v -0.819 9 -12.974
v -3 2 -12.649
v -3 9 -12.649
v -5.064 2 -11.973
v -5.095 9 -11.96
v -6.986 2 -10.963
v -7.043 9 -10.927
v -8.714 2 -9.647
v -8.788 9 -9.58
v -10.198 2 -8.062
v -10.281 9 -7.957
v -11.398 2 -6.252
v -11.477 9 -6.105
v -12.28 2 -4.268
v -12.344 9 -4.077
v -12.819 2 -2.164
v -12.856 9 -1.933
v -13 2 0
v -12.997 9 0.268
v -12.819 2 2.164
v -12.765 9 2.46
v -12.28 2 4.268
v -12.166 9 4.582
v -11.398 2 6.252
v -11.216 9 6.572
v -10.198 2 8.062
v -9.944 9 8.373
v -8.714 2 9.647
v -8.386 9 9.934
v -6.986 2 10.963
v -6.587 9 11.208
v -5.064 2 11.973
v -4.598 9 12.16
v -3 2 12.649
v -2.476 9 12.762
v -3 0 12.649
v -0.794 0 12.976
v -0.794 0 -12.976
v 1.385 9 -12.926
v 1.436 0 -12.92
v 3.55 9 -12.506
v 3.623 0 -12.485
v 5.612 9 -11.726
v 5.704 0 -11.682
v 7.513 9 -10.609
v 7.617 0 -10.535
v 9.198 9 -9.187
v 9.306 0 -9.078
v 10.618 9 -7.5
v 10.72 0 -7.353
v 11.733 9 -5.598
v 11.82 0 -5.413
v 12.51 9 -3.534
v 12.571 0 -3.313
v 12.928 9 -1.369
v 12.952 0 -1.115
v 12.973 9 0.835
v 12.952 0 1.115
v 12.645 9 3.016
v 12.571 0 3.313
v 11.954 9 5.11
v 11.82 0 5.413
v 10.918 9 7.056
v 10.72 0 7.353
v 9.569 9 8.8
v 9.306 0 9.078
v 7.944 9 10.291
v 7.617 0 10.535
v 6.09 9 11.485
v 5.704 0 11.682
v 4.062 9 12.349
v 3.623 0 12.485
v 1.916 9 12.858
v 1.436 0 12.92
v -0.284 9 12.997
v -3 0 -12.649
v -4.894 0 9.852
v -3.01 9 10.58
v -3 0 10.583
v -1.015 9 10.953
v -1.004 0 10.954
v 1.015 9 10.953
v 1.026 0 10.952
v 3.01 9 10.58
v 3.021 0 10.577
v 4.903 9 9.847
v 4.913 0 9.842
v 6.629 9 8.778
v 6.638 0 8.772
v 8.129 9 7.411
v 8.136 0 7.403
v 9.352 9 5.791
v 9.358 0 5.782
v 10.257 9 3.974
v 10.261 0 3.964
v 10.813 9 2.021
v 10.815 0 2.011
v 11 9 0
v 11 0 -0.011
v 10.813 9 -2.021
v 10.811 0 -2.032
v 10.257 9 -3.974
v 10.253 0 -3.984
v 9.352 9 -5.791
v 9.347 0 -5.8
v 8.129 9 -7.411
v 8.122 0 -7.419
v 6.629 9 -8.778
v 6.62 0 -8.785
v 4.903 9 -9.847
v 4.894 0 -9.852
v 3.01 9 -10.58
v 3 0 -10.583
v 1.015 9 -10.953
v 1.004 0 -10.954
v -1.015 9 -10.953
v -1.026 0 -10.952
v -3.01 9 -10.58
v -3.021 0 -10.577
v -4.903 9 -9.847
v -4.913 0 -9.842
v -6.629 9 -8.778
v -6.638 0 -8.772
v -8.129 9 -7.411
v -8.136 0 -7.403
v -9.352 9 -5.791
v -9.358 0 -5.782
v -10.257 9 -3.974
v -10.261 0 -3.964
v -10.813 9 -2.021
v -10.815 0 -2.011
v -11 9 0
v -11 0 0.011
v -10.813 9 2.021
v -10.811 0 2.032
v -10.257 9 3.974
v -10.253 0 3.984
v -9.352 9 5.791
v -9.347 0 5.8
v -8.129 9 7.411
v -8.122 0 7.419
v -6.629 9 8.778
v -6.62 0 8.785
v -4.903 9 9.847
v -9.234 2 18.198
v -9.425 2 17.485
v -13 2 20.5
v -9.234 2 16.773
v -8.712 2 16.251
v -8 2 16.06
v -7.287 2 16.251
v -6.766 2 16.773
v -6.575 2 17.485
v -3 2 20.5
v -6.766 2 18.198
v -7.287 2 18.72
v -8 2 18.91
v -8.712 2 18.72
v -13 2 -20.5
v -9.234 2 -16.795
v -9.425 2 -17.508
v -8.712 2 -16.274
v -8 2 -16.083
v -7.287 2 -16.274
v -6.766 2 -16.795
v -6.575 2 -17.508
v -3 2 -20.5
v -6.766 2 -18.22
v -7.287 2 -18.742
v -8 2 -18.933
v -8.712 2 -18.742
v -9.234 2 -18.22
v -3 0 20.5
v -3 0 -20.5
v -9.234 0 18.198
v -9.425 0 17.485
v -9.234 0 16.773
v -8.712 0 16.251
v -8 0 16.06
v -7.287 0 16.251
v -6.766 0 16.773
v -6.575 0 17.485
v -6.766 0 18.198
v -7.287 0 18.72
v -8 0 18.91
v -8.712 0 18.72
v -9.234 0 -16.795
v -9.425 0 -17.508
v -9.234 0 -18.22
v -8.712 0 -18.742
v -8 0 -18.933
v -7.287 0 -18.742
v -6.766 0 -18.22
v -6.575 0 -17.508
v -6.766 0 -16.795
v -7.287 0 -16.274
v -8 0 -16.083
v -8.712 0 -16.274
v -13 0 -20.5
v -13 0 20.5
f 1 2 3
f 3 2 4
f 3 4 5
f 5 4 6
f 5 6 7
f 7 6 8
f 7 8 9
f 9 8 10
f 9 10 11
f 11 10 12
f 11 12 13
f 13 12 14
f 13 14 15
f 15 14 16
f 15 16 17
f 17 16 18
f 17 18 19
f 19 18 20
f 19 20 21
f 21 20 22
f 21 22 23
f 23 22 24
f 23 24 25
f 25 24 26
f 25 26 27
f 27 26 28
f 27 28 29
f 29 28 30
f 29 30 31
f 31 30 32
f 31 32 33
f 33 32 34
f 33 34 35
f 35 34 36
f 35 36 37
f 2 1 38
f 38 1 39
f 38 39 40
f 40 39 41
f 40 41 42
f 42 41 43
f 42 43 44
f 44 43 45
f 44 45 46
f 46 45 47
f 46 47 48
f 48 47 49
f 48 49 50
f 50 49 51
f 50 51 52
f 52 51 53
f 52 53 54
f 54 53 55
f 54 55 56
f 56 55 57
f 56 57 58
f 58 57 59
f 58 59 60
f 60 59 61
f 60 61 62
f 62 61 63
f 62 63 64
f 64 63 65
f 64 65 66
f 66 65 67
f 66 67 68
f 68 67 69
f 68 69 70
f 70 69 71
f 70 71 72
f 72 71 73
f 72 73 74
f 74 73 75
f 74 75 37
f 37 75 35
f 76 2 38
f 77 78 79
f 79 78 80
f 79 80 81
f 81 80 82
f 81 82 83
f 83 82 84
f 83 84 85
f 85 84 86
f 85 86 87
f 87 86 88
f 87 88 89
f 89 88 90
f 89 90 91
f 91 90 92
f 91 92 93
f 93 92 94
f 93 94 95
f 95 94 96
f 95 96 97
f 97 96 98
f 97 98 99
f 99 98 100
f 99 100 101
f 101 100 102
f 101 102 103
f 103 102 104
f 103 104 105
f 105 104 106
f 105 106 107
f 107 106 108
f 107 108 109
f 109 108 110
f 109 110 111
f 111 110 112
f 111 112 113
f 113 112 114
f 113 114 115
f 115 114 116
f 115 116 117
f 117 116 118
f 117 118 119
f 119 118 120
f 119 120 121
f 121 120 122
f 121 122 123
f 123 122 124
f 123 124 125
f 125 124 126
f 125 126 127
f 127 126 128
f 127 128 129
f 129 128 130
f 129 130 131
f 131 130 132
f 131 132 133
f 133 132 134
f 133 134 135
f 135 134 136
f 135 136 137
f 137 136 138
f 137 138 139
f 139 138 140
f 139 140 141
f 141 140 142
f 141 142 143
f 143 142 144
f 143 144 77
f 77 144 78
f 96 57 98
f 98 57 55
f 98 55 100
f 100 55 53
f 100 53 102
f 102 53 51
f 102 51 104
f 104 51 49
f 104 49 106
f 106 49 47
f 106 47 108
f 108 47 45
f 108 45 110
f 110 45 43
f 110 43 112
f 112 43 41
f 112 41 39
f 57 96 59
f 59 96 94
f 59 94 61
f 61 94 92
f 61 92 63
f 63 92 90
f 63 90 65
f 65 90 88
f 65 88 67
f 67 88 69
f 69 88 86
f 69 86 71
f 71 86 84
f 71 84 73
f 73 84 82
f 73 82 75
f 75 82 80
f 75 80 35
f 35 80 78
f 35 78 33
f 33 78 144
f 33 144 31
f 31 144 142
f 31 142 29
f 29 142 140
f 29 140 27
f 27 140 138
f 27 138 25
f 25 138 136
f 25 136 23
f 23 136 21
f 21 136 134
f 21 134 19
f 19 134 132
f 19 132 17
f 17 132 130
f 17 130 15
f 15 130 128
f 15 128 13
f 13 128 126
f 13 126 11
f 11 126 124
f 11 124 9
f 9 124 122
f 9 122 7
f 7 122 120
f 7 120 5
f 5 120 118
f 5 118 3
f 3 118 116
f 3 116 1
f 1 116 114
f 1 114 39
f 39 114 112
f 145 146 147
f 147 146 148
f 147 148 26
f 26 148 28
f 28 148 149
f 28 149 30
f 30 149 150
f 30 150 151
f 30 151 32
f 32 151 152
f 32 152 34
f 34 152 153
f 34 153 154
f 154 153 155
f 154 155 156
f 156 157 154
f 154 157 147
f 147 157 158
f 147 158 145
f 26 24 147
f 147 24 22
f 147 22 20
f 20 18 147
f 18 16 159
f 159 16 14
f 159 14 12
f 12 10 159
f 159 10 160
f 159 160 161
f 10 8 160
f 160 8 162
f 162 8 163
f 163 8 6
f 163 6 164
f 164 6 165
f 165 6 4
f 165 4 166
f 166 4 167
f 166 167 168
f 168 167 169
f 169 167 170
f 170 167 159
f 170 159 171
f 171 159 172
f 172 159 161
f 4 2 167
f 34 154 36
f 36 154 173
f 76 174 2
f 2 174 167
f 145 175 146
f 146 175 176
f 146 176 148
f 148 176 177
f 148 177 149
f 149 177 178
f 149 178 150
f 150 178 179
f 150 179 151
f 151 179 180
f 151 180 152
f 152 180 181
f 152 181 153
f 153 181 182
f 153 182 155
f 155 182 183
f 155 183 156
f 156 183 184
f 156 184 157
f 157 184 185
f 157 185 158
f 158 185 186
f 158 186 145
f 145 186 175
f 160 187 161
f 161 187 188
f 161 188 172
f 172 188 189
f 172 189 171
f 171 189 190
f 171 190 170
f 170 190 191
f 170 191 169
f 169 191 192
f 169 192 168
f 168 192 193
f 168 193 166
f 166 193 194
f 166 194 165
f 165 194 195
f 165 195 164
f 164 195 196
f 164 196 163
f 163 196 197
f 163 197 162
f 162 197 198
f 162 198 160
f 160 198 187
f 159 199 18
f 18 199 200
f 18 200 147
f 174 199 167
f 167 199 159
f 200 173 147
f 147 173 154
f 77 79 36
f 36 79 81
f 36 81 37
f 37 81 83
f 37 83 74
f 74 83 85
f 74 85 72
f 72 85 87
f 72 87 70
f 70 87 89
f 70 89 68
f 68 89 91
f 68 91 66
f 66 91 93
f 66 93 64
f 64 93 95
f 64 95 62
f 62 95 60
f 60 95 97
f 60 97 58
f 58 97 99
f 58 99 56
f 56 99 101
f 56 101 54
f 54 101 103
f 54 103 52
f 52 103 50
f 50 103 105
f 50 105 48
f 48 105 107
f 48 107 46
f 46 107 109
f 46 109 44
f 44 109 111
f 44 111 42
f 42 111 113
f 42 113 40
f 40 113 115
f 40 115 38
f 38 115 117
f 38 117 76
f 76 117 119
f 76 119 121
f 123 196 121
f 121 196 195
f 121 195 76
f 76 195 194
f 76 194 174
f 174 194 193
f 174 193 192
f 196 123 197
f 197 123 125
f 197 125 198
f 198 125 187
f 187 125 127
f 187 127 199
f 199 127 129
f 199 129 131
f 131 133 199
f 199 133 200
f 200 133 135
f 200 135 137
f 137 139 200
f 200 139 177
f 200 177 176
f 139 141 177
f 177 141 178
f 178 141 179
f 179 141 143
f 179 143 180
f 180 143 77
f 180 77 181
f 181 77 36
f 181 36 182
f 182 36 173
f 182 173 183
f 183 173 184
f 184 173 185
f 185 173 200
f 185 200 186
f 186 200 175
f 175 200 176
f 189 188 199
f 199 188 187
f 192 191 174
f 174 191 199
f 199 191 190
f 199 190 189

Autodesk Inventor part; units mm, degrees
ref_plane "YZ Plane" through (0, 0, 0) normal (1, 0, 0) x (0, 1, 0)
ref_plane "XZ Plane" through (0, 0, 0) normal (0, 1, 0) x (-1, 0, 0)
ref_plane "XY Plane" through (0, 0, 0) normal (0, 0, 1) x (1, 0, 0)
sketch "Sketch3" plane through (0, 0, 0) normal (0, 1, 0) x (-1, 0, 0)
  line L0 (3, -20.5) -> (3, -14.5)
  line L1 (13, 20.5) -> (3, 20.5)
  line L2 (3, -20.5) -> (3, 20.5)
  line L3 (3, 20.5) -> (13, 20.5)
  line L4 (13, 20.5) -> (13, -20.5)
  line L5 (13, -20.5) -> (3, -20.5)
  line L6 (0, 0) -> (3, 0)
  line L7 (13, 14.5) -> (3, 14.5)
  line L8 (3, -14.5) -> (13, -14.5)
  line L9 (3, -14.5) -> (13, -14.5)
  line L10 (3, 14.5) -> (13, 14.5)
  circle A0 centre (8, -17.508) radius 1.425
  circle A1 centre (8, -17.508) radius 1.425
  circle A2 centre (8, 17.4854) radius 1.425
  circle A3 centre (8, 17.4854) radius 1.425
  point P0 (3, 20.5)
  dimension "d15" = 41
  dimension "d16" = 10
  dimension "d17" = 0
  dimension "d18" = 6
extrude "Extrusion1" add sketch "Sketch3" along normal blind 2
sketch "Sketch5" plane through (0, 0, 0) normal (0, -1, 0) x (1, 0, 0)
  line L0 (-3, 20.5) -> (-3, 14.5)
  line L1 (-13, -20.5) -> (-3, -20.5)
  line L2 (-3, 20.5) -> (-3, -20.5)
  line L3 (-3, -20.5) -> (-13, -20.5)
  line L4 (-13, -20.5) -> (-13, 20.5)
  line L5 (-13, 20.5) -> (-3, 20.5)
  line L6 (0, 0) -> (-3, 0)
  line L7 (-13, -14.5) -> (-3, -14.5)
  line L8 (-3, 14.5) -> (-13, 14.5)
  line L9 (-3, 14.5) -> (-13, 14.5)
  line L10 (-3, -14.5) -> (-13, -14.5)
  circle A0 centre (-8, 17.508) radius 1.425
  circle A1 centre (-8, 17.508) radius 1.425
  circle A2 centre (-8, -17.4854) radius 1.425
  circle A3 centre (-8, -17.4854) radius 1.425
  circle A4 centre (0, 0) radius 11
  circle A5 centre (0, 0) radius 13
  point P0 (3, 20.5)
  point P1 (3, -14.5)
  point P2 (-3, 12.6491)
  point P3 (-3, 10.583)
  point P4 (-3, -10.583)
  point P5 (-3, -12.6491)
  dimension "d27" = 41
  dimension "d28" = 10
  dimension "d29" = 0
  dimension "d30" = 6
  dimension "d31" = 22
  dimension "d32" = 26
extrude "Extrusion2" add sketch "Sketch5" against normal blind 9 contours A5 L2 A4 | L2 A4 A5
sketch "Sketch6" plane through (0, 9, 0) normal (0, 1, 0) x (1, 0, 0)
  circle A0 centre (0, 0) radius 11
extrude "Extrusion3" cut sketch "Sketch6" against normal through all
properties part number "Ball_Bearing_Holder"
